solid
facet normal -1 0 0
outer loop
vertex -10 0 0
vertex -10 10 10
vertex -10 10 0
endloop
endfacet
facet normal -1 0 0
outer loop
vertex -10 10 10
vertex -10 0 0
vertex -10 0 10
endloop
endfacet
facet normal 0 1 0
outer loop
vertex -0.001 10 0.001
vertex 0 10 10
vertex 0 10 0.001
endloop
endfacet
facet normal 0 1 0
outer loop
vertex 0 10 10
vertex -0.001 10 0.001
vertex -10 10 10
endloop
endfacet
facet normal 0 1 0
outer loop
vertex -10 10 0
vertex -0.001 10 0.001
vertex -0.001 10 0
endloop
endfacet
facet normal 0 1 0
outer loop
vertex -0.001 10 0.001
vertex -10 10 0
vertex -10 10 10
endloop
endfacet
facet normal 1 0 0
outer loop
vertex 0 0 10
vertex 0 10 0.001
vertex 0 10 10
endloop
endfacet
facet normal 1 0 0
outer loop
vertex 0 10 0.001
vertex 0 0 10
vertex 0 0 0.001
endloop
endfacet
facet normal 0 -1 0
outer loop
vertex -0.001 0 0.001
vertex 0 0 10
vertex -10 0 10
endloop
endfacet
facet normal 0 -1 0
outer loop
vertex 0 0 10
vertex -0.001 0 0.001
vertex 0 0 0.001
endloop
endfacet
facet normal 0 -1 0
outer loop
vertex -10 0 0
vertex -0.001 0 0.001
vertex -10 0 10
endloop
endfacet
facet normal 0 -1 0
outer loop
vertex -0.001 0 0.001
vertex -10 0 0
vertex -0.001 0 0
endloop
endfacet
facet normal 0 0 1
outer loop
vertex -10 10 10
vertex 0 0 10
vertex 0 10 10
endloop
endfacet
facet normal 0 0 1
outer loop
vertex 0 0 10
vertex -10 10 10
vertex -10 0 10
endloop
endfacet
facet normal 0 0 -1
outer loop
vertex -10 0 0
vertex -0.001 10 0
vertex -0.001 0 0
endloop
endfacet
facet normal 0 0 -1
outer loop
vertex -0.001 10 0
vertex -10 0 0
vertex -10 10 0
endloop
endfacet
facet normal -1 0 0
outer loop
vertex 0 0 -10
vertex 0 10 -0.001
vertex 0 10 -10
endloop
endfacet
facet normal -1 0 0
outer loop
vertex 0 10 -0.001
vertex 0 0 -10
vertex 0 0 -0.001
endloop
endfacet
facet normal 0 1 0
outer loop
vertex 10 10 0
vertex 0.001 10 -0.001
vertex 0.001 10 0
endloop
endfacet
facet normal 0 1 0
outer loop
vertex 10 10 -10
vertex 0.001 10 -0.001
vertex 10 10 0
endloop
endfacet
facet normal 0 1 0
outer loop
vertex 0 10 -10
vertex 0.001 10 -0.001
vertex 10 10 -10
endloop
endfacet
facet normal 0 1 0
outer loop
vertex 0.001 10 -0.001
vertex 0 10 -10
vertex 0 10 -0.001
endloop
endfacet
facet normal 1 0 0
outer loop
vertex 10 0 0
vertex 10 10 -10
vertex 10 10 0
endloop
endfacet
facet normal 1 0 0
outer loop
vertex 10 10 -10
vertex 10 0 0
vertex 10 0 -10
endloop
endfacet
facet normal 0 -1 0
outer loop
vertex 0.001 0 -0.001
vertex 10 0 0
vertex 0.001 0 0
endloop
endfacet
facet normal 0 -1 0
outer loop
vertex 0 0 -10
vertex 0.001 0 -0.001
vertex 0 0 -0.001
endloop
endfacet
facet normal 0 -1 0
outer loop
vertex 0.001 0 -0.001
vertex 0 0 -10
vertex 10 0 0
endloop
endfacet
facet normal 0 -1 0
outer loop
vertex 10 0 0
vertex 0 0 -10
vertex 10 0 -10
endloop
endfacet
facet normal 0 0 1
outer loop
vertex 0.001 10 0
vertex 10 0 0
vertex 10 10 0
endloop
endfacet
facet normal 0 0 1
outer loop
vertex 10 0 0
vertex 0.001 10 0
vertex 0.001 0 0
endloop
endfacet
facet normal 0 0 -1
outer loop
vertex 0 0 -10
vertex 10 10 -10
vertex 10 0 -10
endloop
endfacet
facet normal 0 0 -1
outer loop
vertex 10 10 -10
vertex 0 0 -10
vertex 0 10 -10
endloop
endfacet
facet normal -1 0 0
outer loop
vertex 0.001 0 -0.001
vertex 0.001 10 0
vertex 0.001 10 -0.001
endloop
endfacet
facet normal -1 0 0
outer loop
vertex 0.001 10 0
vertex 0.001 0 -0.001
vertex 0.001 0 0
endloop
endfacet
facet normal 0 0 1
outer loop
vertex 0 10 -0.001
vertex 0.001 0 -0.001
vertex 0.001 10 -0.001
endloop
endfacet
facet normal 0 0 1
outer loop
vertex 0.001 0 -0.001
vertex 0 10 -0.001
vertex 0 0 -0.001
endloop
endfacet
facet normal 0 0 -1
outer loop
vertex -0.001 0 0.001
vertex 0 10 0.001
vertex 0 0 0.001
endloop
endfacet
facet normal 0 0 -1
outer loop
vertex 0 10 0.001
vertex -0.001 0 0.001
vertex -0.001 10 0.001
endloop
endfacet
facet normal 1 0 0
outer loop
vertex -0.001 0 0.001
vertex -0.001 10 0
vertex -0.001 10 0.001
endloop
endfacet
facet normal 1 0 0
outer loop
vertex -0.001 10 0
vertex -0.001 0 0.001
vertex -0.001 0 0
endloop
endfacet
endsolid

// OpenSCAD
//-------------------------------------------------------------------------------------------
// CubeBicolorRed
//-------------------------------------------------------------------------------------------
$fn=10;

rotate(90,[-1, 0, 0]) translate([-5, -5, 5]) 
difference(){
union() {
  color("White") translate([0, 0, 0]) cube([10,10,10], center = true);
  // color("red") translate([10, 0, 0]) cube([10,10,10], center = true);
  // color("red") translate([0, 10, 0]) cube([10,10,10], center = true);
  color("White") translate([10, 10, 0]) cube([10,10,10], center = true);
}
translate([5, 5, 0]) cylinder(r=0.001,h=20, center = true);
}
